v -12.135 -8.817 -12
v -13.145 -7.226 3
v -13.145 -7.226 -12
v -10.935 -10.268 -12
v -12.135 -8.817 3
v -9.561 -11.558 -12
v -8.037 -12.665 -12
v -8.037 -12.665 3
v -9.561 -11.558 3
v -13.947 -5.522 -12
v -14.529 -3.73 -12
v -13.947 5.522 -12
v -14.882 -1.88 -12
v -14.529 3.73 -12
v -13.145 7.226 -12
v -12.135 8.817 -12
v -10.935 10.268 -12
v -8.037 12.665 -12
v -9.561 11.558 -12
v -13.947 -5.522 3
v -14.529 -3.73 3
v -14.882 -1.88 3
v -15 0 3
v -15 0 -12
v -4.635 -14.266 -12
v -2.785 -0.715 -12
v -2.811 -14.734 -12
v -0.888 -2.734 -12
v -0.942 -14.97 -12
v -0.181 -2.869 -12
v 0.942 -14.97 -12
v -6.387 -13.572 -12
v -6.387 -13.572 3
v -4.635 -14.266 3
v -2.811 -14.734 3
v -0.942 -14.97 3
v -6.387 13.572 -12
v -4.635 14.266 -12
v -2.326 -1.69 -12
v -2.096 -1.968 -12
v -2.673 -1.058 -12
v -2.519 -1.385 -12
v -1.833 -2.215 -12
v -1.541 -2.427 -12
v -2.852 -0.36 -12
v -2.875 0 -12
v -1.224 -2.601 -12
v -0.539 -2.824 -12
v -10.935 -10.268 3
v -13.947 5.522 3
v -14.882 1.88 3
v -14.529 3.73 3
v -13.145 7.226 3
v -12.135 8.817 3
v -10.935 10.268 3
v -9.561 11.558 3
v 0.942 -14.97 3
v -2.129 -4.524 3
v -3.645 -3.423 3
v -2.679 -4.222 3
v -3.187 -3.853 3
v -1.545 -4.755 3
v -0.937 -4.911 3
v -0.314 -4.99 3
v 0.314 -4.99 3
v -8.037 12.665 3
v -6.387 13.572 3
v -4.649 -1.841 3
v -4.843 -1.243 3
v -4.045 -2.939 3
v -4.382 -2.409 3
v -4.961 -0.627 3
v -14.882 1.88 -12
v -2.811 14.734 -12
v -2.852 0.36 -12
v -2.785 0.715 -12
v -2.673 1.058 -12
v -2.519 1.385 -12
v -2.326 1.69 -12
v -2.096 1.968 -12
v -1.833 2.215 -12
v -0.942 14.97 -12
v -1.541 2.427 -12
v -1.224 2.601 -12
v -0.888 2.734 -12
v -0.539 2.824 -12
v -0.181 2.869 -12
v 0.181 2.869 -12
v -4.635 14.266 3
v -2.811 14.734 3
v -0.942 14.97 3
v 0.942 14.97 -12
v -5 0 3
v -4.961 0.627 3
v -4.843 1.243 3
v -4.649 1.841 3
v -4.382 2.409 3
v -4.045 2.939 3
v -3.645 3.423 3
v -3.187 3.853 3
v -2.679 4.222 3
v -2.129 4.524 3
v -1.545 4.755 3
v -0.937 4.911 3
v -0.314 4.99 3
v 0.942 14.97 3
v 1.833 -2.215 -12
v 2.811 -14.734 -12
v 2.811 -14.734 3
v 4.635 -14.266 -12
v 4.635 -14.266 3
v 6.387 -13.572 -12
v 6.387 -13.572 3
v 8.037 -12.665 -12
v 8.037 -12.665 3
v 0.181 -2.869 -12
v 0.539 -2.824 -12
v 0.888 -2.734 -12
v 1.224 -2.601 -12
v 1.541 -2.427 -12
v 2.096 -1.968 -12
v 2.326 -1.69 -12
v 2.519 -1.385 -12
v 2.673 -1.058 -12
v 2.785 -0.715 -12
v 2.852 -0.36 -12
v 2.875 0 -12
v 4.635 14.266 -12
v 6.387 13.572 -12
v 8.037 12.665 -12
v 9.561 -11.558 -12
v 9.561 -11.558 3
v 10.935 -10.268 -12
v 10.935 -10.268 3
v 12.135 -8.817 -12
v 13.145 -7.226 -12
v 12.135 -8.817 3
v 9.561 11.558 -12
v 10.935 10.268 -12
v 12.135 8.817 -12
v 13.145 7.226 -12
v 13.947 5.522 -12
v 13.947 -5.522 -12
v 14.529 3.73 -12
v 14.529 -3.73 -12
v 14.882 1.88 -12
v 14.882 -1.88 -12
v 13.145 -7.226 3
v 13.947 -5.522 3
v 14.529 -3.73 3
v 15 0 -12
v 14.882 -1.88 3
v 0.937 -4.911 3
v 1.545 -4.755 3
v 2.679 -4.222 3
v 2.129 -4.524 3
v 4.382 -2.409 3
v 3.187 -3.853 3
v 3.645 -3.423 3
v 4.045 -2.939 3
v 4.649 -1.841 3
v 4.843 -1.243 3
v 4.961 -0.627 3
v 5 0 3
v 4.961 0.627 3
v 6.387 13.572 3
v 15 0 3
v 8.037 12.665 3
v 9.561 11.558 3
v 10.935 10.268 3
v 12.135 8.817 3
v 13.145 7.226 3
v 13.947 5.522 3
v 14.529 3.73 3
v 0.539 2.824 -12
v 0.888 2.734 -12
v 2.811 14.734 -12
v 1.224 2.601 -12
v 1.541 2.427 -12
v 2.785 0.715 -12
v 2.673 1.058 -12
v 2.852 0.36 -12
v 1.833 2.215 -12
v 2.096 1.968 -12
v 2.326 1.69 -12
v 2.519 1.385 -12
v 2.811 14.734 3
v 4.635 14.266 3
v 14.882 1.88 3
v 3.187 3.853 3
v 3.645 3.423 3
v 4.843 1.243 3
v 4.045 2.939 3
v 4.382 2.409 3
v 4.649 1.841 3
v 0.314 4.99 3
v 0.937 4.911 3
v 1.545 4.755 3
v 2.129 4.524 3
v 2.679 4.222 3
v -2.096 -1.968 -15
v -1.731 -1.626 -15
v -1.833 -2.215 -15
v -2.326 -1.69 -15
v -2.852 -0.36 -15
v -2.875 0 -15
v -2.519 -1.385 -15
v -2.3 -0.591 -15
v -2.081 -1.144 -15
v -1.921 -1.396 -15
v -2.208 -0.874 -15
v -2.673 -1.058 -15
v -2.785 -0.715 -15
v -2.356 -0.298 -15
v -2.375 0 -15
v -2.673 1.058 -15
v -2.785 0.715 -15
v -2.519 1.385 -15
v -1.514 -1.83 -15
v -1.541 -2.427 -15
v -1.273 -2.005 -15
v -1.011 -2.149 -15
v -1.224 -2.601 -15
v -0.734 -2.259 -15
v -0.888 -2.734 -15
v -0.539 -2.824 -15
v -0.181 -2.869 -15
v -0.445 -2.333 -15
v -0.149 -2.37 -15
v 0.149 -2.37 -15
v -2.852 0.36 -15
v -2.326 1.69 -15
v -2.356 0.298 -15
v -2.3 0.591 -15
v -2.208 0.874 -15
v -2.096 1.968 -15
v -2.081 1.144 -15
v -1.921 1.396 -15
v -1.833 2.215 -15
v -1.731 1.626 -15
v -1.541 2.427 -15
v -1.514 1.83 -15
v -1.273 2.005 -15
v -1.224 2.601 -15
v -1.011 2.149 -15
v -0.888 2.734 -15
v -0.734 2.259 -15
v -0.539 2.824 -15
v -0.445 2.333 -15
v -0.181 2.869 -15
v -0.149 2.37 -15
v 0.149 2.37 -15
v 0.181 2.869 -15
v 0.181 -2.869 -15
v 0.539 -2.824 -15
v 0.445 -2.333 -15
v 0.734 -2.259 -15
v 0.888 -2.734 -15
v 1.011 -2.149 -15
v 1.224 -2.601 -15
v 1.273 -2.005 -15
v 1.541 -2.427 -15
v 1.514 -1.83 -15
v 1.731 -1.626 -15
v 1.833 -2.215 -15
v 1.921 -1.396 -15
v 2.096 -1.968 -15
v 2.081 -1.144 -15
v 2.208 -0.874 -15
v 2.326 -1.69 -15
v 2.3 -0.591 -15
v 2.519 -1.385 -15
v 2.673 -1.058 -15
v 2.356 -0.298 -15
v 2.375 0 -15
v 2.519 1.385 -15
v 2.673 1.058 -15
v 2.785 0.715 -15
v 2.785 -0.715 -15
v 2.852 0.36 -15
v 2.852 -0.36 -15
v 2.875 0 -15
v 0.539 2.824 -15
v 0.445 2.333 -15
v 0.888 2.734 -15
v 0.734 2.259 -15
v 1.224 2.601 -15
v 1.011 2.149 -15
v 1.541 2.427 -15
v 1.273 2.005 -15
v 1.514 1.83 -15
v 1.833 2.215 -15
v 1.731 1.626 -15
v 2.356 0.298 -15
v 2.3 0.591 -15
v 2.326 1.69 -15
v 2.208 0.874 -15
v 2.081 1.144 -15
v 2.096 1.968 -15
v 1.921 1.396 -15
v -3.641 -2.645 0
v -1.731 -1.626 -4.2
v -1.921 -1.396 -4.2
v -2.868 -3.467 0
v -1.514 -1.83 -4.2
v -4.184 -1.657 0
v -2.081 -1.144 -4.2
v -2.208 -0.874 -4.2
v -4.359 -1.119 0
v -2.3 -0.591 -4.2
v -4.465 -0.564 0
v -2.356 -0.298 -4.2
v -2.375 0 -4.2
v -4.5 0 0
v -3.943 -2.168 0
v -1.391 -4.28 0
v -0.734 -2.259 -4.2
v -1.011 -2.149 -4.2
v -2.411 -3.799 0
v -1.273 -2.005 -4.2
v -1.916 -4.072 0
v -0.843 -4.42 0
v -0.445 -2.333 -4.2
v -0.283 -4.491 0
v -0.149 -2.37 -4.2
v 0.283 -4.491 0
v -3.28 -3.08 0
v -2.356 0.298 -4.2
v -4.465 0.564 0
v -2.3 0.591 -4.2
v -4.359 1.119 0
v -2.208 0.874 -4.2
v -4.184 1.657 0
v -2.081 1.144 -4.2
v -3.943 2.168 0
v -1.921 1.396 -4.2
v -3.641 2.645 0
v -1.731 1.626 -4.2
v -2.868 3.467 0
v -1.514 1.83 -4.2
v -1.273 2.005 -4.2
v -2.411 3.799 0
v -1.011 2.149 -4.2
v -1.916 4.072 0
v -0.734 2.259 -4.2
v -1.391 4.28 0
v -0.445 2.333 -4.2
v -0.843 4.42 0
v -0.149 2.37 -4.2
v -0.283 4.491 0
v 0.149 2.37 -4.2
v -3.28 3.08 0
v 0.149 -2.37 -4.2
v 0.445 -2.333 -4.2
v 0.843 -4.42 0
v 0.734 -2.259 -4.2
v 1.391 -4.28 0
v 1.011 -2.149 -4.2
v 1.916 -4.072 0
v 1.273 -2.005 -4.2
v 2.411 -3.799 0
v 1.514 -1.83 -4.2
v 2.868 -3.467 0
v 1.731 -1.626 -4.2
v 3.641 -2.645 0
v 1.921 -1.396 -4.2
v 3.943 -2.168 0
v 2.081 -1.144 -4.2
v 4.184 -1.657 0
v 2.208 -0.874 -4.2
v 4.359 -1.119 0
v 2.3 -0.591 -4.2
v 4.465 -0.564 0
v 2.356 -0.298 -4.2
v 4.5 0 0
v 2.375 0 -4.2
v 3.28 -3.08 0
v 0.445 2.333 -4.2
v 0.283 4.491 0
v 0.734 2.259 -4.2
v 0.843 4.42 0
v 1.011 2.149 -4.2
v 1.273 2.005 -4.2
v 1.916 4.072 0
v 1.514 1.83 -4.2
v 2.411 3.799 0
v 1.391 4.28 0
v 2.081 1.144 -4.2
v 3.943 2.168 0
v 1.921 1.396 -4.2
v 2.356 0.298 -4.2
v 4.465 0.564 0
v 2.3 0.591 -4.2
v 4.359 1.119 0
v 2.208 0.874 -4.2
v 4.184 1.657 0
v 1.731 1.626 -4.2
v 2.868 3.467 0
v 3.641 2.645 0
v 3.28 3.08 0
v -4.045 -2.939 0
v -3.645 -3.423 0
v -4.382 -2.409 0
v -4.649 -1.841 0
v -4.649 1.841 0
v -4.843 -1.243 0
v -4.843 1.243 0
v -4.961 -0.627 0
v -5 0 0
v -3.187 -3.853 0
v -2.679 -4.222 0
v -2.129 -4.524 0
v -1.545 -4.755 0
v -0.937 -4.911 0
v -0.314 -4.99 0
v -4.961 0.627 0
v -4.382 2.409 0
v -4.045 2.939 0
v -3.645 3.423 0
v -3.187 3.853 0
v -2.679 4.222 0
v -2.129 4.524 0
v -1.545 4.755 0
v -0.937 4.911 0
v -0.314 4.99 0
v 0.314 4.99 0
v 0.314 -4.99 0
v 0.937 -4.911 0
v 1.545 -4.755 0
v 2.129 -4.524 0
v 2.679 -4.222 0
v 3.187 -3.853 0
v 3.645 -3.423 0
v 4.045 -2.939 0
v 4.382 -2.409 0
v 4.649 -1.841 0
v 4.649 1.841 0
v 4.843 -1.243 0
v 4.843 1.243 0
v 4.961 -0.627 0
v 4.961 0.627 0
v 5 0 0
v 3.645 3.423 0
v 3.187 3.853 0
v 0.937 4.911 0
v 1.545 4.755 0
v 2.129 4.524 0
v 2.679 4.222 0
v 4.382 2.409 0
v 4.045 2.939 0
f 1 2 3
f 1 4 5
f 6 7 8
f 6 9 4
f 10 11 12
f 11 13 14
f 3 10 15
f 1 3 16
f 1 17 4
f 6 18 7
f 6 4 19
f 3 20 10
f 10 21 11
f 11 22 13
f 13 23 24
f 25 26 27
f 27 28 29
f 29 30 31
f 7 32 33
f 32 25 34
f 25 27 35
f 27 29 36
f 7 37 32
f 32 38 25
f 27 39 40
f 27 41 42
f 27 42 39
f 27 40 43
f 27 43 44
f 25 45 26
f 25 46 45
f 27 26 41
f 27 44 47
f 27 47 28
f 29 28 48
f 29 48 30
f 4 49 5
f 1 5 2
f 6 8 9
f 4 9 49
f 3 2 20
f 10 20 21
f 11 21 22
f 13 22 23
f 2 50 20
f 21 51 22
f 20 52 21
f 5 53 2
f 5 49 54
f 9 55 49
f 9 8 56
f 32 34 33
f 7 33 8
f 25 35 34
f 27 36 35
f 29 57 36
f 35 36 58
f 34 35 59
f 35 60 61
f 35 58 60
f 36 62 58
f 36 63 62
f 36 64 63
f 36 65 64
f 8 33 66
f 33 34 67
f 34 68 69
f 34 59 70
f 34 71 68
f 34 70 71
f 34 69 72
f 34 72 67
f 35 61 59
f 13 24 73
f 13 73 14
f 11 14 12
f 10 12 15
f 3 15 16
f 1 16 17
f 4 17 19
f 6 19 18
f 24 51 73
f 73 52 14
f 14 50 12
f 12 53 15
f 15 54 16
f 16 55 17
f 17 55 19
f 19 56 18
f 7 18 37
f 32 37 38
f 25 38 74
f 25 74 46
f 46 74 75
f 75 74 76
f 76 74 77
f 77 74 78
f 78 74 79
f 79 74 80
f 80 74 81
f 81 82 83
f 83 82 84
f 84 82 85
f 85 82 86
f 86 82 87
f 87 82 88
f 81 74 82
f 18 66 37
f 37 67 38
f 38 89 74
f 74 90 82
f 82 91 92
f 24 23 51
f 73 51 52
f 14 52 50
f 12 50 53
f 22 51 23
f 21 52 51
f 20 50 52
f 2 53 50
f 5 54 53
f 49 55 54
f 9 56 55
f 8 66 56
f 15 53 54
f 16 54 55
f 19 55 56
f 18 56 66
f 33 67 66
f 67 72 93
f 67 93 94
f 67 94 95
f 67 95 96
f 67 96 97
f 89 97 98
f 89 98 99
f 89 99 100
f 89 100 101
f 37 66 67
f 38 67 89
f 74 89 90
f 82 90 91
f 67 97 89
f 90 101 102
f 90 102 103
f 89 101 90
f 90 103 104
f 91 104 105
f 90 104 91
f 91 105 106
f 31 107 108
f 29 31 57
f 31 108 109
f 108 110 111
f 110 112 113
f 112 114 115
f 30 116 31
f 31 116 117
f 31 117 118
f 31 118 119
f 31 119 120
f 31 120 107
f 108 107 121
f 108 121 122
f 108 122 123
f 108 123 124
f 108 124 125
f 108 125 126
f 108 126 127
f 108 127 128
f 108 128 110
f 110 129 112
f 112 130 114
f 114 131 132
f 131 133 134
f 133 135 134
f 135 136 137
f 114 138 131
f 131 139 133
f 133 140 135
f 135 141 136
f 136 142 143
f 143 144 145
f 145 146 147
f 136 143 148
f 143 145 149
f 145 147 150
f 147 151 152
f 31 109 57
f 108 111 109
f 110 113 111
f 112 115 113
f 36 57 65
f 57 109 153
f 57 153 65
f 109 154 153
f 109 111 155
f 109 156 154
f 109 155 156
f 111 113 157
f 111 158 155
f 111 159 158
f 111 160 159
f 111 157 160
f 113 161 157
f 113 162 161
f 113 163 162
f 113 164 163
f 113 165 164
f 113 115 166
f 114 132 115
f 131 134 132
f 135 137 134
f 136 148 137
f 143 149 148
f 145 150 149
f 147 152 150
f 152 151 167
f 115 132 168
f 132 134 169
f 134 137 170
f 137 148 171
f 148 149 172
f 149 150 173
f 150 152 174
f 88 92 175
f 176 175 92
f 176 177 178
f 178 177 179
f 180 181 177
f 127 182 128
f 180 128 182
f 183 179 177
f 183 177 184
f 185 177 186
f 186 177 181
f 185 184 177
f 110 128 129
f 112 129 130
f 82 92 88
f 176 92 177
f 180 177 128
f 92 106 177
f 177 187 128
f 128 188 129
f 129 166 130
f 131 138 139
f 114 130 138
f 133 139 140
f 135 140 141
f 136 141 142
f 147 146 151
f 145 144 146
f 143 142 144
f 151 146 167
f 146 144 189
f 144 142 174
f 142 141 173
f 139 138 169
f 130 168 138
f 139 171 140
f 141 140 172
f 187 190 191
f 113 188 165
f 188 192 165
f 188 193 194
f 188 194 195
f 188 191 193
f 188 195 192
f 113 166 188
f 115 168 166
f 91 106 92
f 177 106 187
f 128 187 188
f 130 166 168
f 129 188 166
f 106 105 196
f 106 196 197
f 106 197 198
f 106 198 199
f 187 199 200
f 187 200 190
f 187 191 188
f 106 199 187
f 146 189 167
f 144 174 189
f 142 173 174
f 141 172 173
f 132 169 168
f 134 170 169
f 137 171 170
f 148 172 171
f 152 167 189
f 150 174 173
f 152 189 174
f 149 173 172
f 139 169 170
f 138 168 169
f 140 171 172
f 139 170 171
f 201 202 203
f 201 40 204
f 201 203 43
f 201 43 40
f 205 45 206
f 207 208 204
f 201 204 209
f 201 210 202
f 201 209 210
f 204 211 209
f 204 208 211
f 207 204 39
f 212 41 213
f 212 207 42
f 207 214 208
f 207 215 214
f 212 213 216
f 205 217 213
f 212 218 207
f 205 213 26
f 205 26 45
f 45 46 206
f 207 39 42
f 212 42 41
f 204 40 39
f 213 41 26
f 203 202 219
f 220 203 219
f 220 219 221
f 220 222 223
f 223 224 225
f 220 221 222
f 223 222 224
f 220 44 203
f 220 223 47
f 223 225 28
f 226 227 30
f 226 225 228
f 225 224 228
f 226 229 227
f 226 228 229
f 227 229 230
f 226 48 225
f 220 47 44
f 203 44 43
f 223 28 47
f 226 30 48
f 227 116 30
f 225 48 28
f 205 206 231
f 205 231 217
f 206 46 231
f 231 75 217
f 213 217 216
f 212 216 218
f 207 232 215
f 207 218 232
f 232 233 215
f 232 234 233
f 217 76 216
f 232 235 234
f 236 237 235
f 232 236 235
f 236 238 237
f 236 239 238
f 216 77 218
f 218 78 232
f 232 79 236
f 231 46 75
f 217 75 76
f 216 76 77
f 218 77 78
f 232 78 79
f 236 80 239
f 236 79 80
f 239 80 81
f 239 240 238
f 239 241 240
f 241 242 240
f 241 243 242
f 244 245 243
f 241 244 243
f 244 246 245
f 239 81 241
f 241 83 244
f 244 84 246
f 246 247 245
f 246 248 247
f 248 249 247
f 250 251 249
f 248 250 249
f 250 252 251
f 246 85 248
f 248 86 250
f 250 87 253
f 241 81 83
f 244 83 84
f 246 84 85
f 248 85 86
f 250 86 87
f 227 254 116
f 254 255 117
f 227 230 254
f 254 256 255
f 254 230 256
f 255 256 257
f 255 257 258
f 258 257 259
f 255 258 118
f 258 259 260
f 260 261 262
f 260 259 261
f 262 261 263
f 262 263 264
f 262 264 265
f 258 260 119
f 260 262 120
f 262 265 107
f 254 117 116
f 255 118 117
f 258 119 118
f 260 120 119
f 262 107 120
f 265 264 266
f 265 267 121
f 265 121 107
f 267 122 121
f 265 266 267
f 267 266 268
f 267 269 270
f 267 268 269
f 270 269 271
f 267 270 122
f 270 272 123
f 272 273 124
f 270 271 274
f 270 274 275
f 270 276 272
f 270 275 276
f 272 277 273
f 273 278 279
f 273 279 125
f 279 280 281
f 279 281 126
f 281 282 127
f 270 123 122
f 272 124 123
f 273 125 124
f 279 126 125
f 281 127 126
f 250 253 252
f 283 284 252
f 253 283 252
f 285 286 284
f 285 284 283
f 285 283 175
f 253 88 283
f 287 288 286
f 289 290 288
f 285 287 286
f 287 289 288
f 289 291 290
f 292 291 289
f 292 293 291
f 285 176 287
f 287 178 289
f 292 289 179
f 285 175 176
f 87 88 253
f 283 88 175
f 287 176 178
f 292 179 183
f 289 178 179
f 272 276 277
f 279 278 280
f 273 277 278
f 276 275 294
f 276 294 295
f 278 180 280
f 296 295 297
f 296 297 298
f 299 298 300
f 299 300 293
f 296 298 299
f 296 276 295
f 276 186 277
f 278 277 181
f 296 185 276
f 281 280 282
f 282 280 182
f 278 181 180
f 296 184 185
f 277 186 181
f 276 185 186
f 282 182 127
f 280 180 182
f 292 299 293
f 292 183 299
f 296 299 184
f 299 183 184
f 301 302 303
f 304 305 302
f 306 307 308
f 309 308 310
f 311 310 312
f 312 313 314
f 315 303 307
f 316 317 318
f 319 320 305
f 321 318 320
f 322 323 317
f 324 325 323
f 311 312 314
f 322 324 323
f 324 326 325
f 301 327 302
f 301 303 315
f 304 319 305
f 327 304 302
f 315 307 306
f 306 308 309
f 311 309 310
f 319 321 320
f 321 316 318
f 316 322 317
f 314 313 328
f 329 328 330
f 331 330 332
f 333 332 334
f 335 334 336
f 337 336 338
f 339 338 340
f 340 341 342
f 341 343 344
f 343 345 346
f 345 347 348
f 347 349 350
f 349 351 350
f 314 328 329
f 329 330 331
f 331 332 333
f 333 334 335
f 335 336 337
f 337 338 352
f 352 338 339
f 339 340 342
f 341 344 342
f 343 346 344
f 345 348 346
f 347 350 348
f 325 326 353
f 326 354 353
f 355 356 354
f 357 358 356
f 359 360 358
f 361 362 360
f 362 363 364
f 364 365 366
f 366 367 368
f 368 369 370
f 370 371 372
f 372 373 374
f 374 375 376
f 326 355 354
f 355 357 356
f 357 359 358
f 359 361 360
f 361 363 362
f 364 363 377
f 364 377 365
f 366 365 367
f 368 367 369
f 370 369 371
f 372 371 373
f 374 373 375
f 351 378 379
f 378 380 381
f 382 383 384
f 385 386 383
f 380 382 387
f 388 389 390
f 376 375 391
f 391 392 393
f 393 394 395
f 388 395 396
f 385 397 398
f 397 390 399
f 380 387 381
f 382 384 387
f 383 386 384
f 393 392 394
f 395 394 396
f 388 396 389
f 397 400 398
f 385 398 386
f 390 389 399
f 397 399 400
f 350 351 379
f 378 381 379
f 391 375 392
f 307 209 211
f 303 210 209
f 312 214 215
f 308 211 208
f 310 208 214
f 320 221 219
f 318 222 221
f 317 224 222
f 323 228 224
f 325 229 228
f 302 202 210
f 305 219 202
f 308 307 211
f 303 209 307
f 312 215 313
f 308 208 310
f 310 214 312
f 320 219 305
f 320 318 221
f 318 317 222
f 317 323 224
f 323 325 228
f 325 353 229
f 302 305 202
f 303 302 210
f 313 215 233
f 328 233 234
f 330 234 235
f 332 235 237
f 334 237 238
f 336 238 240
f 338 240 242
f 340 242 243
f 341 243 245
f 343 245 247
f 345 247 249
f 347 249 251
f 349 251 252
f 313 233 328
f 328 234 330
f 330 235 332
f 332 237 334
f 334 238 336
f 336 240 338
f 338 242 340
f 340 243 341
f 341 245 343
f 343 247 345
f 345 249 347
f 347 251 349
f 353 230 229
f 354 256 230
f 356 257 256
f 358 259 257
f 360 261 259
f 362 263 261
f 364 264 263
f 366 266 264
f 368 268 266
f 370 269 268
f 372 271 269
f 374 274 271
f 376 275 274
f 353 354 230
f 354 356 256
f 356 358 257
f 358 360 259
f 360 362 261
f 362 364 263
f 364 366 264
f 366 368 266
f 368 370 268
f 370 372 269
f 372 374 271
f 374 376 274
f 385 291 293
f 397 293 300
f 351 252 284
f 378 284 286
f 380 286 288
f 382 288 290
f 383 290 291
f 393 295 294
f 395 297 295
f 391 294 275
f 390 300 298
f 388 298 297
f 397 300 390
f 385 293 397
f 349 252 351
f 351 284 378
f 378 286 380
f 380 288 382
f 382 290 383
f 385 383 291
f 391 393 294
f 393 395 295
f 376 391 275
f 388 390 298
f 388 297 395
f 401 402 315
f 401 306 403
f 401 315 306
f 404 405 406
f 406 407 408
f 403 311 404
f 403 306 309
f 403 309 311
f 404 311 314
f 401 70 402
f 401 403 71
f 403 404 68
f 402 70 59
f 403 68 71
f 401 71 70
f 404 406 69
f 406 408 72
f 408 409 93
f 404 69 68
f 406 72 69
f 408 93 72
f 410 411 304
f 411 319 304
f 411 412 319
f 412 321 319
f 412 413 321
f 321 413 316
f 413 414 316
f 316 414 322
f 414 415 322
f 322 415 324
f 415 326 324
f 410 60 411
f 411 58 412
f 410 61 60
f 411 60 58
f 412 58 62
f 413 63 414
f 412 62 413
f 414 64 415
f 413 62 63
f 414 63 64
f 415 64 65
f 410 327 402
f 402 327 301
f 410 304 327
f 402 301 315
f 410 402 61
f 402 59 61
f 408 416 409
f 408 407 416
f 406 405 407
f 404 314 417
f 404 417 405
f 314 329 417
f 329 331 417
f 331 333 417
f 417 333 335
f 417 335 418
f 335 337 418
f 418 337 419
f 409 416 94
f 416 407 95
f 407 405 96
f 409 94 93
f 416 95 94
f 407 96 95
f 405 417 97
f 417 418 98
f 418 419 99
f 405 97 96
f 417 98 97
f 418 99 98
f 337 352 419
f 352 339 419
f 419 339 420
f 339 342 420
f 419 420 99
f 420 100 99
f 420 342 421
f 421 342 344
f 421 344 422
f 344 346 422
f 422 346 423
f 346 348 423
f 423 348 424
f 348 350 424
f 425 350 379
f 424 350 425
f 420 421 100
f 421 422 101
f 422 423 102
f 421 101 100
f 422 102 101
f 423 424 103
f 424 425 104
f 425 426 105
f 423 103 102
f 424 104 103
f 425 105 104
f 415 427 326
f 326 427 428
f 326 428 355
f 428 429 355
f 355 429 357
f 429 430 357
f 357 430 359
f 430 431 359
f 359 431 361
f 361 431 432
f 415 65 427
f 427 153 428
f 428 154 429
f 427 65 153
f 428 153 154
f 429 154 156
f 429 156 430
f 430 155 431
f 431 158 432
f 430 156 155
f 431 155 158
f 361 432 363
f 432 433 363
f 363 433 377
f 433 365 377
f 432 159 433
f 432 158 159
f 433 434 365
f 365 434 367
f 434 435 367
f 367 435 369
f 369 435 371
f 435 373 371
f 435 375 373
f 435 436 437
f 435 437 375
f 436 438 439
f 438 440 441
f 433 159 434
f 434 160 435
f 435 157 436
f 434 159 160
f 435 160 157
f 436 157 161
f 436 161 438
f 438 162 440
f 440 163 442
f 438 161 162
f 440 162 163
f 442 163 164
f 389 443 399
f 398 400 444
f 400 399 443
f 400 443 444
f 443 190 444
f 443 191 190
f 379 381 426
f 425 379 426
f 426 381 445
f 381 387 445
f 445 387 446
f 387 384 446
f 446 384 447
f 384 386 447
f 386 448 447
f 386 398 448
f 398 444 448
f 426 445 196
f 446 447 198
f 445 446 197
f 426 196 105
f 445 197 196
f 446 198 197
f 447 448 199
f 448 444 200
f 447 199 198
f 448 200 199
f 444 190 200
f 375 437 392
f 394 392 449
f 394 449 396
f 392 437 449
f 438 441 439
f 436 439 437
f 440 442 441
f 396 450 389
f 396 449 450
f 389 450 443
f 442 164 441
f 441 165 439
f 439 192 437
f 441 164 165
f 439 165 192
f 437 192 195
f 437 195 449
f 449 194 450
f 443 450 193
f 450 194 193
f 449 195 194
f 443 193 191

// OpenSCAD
$fn = 50;


difference() {
	union() {
		translate(v = [0, 0, -12.0000000000]) {
			cylinder(h = 15, r = 15.0000000000);
		}
		#translate(v = [0, 0, -15.0000000000]) {
			cylinder(h = 15, r = 2.8750000000);
		}
	}
	union() {
		translate(v = [0, 0, 0]) {
			rotate(a = [0, 0, 0]) {
				difference() {
					union() {
						translate(v = [0, 0, -15.0000000000]) {
							cylinder(h = 15, r = 2.2500000000);
						}
						translate(v = [0, 0, -4.2000000000]) {
							cylinder(h = 4.2000000000, r1 = 2.3750000000, r2 = 4.5000000000);
						}
						translate(v = [0, 0, -15.0000000000]) {
							cylinder(h = 15, r = 2.3750000000);
						}
						translate(v = [0, 0, -15.0000000000]) {
							cylinder(h = 15, r = 2.2500000000);
						}
					}
					union();
				}
			}
		}
		#cylinder(h = 3, r = 5.0000000000);
	}
}
